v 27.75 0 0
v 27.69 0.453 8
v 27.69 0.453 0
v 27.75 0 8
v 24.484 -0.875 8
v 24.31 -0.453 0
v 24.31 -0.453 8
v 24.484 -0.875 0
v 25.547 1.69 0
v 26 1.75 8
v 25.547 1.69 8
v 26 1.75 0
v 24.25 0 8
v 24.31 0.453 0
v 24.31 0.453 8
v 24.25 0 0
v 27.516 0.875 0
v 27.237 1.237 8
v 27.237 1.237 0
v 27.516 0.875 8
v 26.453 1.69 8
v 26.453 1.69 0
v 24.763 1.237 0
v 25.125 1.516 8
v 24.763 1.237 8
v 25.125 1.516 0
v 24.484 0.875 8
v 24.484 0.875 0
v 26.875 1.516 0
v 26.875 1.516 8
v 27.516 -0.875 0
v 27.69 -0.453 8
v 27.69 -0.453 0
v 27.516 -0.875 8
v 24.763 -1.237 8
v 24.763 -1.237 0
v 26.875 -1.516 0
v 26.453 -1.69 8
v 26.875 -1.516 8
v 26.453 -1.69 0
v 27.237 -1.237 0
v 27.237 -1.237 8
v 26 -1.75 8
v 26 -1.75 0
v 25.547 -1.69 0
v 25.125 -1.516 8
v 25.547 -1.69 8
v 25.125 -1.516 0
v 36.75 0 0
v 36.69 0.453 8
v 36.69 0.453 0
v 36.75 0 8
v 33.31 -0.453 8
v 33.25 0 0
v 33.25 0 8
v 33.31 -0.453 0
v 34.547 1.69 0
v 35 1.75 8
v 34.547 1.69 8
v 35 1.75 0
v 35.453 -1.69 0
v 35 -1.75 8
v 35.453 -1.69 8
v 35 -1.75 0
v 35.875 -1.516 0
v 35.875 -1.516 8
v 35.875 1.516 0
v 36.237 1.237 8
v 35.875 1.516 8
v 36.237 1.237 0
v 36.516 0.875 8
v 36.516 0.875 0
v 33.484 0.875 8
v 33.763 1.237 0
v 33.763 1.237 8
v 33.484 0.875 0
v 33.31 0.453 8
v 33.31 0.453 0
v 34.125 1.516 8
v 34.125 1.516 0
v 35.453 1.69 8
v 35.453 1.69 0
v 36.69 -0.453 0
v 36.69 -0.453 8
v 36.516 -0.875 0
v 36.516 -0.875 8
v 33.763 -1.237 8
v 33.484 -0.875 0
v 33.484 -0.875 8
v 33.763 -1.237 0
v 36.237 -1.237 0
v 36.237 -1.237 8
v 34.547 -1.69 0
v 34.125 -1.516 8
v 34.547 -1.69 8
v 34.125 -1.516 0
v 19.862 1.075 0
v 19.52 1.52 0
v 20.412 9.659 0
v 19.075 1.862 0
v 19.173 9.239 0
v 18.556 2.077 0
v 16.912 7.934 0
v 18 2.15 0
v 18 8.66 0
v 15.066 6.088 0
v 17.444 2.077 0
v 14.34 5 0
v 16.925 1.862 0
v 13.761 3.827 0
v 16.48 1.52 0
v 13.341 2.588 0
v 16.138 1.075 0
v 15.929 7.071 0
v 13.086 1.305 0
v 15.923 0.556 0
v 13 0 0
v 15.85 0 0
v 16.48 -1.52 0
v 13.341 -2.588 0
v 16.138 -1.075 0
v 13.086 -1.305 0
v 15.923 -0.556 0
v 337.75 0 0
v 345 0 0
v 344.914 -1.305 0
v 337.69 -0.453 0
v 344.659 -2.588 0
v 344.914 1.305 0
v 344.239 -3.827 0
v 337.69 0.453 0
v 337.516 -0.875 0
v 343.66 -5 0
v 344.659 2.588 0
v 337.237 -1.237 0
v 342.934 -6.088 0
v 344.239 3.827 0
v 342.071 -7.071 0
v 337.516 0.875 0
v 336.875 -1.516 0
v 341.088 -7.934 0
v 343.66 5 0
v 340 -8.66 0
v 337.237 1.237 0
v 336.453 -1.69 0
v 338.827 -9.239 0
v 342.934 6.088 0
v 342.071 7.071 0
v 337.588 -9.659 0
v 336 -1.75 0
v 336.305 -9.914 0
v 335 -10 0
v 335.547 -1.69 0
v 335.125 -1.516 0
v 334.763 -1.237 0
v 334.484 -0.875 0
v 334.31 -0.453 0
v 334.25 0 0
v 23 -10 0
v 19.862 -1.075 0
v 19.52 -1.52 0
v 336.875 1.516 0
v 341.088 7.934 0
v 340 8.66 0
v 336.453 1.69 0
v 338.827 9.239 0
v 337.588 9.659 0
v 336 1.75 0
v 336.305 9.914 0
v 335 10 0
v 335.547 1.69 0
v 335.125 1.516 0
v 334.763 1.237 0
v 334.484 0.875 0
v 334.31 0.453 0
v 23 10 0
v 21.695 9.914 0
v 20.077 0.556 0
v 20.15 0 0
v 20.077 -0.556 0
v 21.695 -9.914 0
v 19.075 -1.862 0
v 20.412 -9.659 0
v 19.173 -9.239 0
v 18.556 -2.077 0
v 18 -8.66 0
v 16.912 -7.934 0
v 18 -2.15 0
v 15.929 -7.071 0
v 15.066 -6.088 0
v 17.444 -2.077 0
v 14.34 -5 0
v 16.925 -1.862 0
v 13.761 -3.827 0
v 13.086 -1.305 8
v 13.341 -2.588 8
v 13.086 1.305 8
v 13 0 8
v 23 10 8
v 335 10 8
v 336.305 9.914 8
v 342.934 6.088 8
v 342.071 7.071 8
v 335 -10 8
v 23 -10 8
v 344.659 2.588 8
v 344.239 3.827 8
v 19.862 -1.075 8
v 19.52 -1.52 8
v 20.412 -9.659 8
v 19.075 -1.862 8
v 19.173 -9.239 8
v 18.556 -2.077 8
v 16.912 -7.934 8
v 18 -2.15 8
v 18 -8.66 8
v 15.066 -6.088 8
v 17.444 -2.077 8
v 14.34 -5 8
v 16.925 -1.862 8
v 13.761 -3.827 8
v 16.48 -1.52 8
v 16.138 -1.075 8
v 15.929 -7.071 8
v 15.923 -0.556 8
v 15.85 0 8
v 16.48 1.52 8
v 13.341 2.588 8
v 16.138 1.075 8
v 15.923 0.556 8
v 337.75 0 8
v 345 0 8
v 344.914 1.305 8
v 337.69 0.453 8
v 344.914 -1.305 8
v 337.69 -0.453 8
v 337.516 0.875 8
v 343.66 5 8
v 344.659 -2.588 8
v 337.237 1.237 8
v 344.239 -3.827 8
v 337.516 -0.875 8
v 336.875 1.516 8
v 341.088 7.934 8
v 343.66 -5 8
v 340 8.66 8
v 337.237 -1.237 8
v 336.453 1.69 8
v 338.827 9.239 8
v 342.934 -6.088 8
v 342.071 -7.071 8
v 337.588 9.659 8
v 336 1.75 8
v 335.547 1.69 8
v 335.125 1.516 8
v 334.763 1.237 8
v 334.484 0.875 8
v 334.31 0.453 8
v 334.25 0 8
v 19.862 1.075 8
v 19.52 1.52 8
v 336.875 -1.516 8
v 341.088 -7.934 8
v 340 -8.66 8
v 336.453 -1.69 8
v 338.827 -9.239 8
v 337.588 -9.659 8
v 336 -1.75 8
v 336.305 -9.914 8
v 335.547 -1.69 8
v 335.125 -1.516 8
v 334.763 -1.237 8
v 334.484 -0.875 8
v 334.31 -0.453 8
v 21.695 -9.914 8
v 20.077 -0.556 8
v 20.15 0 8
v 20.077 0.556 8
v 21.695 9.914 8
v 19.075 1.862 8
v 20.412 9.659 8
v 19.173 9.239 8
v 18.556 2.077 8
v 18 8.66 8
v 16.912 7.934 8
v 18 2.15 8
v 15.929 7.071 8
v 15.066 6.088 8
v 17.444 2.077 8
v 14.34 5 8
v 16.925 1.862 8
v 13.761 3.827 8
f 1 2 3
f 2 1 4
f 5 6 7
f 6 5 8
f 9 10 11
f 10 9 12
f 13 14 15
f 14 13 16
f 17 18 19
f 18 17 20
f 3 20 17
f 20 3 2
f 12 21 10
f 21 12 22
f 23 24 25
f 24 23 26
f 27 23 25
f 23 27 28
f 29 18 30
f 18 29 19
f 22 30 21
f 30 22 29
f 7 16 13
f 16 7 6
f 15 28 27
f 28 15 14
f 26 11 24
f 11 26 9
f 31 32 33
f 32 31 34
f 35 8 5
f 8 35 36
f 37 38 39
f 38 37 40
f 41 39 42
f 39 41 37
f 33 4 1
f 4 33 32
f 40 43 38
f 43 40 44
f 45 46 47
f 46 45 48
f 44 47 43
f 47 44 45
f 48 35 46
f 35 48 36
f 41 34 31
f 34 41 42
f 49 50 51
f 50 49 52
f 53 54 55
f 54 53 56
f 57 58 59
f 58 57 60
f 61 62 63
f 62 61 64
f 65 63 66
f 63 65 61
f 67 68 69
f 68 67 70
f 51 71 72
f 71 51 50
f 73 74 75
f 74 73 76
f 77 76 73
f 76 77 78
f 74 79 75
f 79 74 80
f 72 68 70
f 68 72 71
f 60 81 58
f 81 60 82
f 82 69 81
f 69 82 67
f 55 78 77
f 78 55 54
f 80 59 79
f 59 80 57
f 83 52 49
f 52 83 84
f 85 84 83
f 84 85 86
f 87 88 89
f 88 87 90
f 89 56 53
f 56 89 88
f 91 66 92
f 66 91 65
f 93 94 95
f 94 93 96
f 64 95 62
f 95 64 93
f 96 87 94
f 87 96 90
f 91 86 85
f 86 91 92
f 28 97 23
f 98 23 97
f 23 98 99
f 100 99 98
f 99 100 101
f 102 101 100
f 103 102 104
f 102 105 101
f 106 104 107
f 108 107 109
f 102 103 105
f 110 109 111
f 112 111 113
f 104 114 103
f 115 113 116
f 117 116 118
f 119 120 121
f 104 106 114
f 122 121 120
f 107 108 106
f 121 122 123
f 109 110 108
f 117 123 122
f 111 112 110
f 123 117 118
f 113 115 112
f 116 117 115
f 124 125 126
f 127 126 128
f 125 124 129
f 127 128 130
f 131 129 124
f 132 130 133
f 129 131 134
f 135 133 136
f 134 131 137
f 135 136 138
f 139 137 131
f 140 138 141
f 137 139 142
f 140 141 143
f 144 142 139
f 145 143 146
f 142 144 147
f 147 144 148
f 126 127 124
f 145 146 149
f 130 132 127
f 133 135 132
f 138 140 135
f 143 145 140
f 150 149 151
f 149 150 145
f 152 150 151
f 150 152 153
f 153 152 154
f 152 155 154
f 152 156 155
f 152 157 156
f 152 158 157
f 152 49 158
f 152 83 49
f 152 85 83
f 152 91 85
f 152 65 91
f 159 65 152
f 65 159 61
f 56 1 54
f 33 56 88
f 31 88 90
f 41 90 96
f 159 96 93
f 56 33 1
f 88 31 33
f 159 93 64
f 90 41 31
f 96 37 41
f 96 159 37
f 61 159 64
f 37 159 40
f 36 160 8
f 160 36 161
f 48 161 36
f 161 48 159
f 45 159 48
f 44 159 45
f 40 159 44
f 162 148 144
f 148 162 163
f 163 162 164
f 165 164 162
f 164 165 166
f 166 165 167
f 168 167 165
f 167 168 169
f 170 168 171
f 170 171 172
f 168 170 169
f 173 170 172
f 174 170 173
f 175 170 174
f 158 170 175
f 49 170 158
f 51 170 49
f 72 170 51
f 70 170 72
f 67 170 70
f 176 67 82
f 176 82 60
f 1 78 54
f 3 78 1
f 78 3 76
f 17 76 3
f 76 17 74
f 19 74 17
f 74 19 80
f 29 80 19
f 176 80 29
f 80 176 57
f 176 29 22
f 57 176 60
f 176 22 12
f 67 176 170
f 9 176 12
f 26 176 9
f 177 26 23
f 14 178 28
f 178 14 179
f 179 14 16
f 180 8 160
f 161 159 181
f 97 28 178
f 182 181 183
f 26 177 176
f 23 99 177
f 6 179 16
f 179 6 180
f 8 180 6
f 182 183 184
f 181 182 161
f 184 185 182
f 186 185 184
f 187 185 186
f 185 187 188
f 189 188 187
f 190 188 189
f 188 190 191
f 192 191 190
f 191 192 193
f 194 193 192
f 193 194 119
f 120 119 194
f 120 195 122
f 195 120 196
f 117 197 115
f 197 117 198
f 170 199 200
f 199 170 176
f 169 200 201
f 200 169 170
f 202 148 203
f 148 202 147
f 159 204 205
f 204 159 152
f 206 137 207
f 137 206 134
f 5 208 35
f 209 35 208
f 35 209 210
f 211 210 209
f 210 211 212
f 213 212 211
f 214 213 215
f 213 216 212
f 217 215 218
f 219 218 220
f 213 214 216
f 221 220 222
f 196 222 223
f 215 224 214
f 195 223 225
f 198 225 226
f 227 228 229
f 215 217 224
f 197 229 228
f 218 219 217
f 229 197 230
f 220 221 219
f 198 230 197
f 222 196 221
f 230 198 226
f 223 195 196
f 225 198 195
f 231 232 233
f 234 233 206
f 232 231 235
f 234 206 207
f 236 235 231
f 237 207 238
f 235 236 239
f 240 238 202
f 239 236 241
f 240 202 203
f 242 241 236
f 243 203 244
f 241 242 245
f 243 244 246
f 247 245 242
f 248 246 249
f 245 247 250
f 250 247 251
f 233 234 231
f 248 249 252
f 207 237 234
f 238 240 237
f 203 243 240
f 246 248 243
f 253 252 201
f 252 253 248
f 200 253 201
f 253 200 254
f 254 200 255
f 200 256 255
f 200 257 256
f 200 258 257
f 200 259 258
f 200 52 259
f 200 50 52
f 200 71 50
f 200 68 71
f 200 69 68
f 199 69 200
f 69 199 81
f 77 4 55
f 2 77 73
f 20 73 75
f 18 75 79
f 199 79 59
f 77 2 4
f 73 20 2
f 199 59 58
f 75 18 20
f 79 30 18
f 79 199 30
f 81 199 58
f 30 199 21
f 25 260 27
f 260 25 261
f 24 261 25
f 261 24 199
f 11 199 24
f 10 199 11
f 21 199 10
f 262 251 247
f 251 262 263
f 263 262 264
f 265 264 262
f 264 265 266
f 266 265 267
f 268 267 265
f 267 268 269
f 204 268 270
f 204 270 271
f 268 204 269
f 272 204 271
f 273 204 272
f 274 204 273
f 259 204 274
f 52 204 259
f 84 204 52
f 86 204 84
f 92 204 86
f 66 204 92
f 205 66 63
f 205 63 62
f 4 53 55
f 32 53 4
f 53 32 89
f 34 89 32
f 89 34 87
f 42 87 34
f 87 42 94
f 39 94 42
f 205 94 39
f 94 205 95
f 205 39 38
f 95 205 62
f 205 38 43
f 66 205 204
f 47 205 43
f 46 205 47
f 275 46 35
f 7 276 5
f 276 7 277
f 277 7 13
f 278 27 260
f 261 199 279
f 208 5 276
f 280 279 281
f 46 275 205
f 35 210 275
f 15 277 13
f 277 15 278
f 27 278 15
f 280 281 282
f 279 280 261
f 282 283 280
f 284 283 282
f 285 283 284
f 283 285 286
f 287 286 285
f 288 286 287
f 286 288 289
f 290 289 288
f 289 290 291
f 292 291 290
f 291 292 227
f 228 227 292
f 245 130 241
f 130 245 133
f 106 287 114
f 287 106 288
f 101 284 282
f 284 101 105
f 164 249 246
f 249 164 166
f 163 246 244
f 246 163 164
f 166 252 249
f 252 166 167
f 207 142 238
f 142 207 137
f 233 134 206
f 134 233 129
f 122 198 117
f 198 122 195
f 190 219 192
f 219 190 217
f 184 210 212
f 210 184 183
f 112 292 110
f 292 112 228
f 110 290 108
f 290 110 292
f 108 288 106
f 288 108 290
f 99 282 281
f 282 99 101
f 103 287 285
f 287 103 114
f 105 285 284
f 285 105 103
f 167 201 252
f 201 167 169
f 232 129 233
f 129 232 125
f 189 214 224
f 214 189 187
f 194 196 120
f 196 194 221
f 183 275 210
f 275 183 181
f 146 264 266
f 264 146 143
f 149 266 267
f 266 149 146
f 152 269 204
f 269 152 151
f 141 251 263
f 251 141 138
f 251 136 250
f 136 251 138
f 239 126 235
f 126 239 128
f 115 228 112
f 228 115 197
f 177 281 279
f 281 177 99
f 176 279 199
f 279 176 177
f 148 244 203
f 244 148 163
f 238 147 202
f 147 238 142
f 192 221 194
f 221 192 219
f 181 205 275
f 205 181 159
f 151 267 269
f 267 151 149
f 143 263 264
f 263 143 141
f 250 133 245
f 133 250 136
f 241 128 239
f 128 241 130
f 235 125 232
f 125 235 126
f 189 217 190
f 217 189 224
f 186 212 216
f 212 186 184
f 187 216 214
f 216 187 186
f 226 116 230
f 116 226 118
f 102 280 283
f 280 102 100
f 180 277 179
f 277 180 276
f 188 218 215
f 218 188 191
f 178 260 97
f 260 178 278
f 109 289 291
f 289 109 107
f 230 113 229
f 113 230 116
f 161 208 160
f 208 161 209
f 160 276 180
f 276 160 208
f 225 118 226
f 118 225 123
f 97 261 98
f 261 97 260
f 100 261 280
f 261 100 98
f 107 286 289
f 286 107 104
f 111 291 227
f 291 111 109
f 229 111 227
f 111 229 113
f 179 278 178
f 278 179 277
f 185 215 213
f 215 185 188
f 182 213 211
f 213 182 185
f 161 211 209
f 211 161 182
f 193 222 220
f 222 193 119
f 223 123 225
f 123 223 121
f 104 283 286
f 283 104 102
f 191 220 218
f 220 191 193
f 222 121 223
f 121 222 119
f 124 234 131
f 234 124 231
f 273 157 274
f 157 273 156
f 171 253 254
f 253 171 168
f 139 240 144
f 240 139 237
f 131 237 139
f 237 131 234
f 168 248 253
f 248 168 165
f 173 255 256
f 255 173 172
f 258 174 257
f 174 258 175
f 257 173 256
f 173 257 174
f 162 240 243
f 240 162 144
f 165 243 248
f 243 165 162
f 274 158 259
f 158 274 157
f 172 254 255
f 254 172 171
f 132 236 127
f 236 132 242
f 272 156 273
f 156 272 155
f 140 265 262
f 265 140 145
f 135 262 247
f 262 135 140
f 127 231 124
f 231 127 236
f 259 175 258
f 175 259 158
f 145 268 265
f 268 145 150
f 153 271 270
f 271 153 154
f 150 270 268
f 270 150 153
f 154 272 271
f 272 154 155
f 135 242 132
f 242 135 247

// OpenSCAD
// Gen-DZ — TOP SPIDER ARM (2026-11-02 pedestal frame). Print x3, flat. One arm per frame rod at arm_angles;
// inner end bolts on top of the spider hub (2x M3), outer end sits on a top standoff over the stator and is clamped by the frame-rod nut.
include <parameters.scad>;
$fn = 48;
arm_r0 = 13.0;   // inner end (clears the shaft + a drive coupling)
arm_r1 = flange_bolt_r + 9.0;
difference() {
    hull() {
        translate([arm_r0 + arm_w / 2, 0, 0]) cylinder(d=arm_w, h=arm_t);
        translate([arm_r1 - arm_w / 2, 0, 0]) cylinder(d=arm_w, h=arm_t);
    }
    for (r = arm_bolt_r) translate([r, 0, -0.1]) cylinder(d=m3_clear, h=arm_t + 1, $fn=24);
    translate([brace_r, 0, -0.1]) cylinder(d=brace_d, h=arm_t + 1, $fn=24);
    translate([flange_bolt_r, 0, -0.1]) cylinder(d=m3_clear, h=arm_t + 1, $fn=24);
}
